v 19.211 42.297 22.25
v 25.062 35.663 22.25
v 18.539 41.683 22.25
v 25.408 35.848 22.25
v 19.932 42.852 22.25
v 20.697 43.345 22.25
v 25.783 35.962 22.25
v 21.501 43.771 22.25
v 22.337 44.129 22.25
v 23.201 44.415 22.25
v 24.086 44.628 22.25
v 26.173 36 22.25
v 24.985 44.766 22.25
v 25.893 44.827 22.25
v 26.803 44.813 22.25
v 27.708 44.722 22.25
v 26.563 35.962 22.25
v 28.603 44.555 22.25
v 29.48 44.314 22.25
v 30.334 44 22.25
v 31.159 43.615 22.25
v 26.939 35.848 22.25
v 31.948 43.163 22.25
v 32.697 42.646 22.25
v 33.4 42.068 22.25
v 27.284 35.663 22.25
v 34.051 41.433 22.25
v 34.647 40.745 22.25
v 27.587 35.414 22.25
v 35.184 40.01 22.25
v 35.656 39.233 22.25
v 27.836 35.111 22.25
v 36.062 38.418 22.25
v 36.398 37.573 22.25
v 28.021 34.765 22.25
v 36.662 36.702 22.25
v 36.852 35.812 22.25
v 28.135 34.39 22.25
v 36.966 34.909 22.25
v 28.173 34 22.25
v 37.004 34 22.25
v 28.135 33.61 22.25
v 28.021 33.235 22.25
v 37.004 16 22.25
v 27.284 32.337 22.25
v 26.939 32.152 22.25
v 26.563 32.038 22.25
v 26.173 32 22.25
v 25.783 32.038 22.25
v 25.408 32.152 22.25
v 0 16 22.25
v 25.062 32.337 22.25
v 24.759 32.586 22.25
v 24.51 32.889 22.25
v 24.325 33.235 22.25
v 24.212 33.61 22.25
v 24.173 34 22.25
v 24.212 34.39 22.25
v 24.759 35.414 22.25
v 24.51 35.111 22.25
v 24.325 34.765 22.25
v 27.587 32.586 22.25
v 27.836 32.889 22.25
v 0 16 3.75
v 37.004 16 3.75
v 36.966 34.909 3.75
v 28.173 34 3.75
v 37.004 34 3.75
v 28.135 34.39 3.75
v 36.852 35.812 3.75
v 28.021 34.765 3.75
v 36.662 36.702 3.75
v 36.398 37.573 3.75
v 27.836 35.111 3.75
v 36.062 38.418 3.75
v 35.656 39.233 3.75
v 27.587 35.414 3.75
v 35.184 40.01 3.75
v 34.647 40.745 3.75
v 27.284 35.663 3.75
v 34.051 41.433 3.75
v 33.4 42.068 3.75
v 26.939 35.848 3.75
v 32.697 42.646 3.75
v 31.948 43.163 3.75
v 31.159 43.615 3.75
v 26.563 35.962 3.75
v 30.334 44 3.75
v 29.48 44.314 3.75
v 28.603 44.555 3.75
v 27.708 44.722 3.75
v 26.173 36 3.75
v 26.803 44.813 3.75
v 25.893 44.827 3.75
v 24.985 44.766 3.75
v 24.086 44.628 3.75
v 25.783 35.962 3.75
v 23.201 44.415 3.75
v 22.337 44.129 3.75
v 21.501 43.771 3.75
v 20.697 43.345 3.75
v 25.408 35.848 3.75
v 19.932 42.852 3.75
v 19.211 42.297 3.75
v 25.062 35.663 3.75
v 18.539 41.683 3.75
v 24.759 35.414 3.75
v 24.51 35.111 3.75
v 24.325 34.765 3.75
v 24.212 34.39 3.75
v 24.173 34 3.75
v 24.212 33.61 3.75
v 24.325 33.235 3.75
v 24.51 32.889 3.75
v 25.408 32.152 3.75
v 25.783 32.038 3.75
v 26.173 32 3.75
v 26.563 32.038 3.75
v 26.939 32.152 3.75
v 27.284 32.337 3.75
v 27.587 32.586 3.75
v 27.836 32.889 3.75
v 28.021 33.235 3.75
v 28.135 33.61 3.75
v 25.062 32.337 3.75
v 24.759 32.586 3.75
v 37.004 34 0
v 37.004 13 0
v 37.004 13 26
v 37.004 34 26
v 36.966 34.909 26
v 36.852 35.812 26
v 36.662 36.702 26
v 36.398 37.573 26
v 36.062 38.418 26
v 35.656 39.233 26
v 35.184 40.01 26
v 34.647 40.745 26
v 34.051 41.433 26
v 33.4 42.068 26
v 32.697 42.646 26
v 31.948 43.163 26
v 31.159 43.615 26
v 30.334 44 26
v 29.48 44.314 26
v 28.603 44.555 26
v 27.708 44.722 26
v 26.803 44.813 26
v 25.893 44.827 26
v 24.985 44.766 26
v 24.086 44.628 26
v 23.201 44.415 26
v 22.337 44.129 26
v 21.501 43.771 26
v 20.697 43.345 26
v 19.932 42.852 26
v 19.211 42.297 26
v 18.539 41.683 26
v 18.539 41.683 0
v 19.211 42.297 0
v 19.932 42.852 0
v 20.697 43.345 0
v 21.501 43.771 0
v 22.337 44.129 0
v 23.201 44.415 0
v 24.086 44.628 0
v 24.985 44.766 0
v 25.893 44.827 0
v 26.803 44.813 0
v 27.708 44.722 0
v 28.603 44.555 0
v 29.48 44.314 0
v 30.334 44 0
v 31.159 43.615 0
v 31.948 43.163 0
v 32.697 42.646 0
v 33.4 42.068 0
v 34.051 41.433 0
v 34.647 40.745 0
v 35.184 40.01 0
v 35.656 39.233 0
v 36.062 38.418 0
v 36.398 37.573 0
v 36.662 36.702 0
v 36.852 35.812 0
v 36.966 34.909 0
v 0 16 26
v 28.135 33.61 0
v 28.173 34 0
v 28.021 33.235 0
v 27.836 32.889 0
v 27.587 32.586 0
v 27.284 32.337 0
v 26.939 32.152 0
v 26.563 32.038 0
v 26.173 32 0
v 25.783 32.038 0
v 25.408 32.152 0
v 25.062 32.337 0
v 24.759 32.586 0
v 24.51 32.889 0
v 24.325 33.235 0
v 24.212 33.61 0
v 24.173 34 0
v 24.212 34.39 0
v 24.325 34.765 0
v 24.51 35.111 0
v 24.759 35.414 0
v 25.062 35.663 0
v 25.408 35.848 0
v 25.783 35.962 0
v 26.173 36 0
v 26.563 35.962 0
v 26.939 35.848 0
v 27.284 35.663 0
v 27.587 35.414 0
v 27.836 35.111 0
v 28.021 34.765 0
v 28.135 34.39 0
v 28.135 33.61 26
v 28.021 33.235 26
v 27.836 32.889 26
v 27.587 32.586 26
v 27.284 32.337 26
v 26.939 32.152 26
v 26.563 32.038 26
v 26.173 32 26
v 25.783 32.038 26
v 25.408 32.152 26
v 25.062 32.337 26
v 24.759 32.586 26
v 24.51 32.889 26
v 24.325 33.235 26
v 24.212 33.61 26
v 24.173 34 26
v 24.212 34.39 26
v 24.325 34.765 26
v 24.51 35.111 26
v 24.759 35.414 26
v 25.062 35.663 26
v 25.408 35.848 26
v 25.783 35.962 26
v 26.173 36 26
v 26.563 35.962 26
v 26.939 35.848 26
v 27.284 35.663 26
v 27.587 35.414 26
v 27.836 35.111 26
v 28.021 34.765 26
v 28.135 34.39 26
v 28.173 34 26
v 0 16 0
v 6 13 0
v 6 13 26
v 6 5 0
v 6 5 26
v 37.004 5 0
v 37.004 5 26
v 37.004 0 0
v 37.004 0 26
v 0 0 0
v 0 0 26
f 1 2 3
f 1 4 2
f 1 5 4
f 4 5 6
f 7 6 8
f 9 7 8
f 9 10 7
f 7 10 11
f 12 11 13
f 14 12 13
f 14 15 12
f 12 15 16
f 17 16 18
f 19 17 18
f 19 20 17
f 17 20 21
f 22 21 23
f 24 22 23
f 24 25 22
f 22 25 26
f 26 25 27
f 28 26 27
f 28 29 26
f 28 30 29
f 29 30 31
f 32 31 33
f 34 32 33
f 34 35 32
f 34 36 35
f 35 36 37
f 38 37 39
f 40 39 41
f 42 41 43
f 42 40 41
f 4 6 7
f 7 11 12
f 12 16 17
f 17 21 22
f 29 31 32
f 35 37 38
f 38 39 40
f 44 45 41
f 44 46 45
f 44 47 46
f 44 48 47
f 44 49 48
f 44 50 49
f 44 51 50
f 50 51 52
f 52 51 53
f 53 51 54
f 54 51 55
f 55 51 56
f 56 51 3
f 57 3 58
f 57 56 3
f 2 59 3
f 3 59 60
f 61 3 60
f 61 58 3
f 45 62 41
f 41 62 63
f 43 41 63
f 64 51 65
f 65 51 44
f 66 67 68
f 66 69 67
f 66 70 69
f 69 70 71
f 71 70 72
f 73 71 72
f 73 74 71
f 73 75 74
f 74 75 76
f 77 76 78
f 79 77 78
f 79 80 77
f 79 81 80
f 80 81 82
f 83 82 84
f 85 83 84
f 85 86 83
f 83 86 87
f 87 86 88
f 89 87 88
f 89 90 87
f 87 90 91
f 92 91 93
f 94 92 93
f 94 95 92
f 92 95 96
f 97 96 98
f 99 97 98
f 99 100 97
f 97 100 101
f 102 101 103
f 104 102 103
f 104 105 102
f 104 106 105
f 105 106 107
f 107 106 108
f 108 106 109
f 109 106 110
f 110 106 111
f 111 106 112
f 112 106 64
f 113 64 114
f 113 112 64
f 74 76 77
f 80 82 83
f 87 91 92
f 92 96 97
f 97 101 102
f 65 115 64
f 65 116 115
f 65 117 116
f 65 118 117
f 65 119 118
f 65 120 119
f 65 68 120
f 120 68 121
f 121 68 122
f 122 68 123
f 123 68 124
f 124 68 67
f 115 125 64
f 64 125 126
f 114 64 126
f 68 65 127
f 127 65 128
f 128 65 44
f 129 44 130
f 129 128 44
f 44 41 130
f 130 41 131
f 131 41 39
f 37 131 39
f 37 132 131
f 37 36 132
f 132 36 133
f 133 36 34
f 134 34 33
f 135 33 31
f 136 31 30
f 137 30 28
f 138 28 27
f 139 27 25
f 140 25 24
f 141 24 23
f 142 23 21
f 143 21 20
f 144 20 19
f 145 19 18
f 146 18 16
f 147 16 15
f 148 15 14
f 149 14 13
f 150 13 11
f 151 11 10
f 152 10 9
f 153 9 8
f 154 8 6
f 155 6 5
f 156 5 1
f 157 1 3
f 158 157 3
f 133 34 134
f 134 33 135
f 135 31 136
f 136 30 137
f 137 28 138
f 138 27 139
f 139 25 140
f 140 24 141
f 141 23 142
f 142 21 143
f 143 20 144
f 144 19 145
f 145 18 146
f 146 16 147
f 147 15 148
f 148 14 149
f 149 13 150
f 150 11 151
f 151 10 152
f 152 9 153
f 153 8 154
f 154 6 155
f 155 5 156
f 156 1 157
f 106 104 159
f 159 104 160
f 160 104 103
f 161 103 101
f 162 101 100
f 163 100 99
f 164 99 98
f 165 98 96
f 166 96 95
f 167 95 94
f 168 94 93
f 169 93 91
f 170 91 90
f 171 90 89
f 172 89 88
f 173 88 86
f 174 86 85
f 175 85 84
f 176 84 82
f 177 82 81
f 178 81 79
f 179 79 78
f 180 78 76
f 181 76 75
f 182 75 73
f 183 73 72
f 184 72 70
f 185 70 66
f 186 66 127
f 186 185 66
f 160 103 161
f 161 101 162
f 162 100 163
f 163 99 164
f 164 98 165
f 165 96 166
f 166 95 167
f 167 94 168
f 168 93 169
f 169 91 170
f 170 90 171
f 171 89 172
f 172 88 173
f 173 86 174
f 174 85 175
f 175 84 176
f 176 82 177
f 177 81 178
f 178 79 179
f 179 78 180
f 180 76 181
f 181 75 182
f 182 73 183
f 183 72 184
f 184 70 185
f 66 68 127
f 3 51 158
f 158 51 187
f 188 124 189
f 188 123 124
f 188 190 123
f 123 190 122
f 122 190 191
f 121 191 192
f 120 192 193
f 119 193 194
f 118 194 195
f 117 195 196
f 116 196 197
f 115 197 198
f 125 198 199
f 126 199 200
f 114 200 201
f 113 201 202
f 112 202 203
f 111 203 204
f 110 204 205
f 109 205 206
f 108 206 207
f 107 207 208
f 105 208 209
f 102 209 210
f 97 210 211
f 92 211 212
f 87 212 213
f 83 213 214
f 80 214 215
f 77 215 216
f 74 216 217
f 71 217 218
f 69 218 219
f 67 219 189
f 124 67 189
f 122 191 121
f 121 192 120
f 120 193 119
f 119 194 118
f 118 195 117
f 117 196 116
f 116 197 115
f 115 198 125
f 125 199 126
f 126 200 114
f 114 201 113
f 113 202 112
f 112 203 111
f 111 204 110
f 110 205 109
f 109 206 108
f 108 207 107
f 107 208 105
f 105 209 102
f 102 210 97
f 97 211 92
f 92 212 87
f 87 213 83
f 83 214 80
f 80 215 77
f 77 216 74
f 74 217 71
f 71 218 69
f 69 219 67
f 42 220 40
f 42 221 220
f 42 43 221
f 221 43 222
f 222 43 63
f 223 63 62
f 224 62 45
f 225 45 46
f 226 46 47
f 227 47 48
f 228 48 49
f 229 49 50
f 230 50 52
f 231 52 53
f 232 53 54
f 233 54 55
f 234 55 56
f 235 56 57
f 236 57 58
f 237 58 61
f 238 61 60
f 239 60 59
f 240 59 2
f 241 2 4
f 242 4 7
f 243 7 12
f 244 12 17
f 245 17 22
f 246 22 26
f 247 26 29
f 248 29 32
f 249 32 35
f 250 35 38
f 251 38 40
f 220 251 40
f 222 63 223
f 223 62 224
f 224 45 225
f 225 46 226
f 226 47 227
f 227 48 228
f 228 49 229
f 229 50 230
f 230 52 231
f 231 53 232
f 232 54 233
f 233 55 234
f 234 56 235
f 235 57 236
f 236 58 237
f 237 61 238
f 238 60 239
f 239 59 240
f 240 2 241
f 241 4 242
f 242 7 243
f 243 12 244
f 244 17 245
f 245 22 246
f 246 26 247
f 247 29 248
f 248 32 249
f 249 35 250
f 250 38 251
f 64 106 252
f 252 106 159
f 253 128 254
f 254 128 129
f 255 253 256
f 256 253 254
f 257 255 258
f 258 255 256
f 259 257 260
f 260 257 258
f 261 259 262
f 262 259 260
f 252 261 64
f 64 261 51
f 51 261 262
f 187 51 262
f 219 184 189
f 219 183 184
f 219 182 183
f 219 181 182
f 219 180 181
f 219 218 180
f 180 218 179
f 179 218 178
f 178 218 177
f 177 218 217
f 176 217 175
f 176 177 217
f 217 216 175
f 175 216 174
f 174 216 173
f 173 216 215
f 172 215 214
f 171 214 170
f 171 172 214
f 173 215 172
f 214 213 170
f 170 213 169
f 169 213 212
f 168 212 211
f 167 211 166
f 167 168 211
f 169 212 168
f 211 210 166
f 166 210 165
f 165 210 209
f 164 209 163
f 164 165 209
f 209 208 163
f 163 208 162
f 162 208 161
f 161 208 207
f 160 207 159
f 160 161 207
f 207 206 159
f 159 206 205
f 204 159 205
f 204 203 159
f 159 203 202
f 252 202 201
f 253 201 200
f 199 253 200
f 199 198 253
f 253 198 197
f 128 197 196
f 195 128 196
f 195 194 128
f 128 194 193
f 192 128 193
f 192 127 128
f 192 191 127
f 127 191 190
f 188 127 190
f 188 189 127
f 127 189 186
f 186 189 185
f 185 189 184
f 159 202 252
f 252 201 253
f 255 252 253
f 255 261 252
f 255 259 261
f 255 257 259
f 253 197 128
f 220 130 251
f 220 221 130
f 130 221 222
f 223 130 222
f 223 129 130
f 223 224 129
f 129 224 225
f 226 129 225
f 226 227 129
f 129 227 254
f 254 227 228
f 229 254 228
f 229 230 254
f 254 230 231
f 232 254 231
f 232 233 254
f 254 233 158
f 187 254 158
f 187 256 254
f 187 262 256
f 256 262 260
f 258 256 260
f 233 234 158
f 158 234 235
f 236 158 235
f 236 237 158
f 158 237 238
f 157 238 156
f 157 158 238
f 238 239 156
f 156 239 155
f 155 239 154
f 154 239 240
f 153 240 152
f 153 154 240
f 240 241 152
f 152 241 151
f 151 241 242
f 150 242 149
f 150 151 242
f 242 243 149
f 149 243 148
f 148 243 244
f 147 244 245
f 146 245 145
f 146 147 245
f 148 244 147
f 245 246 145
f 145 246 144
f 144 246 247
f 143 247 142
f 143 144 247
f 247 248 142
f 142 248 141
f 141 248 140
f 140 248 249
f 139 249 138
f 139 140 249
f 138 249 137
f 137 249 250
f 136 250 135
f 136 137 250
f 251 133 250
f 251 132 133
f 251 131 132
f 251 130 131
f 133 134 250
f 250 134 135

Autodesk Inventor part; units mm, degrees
ref_plane "YZ Plane" through (0, 0, 0) normal (1, 0, 0) x (0, 1, 0)
ref_plane "XZ Plane" through (0, 0, 0) normal (0, 1, 0) x (-1, 0, 0)
ref_plane "XY Plane" through (0, 0, 0) normal (0, 0, 1) x (1, 0, 0)
sketch "Sketch1" plane through (0, 0, 0) normal (0, 0, 1) x (1, 0, 0)
  line L0 (6, 5) -> (6, 13)
  line L1 (0, 16) -> (0, 0)
  arc A0 (37.0043, 34) -> (18.539, 41.6832) centre (26.1732, 34) ccw
  line L2 (18.539, 41.6832) -> (0, 16)
  circle A1 centre (26.1732, 34) radius 2
  line L3 (37.0043, 5) -> (37.0043, 0)
  line L4 (6, 5) -> (37.0043, 5)
  line L5 (0, 0) -> (37.0043, 0)
  line L6 (6, 13) -> (37.0043, 13)
  line L7 (0, 16) -> (37.0043, 16)
  line L8 (37.0043, 34) -> (37.0043, 13)
  dimension "d3" = 8
  dimension "d6" = 18
  dimension "d7" = 20
  dimension "d8" = 4
  dimension "d9" = 3
  dimension "d10" = 5
  dimension "d11" = 16
  dimension "d12" = 37.0043
  dimension "d13" = 31.0043
  dimension "d14" = 26.1732
extrude "Extrusion1" add sketch "Sketch1" along normal blind 26
sketch "Sketch2" plane through (0, 0, 26) normal (0, 0, 1) x (1, 0, 0)
  point P0 (0, 0)
sketch "Sketch3" plane through (37.0043, 13, 0) normal (1, 0, 0) x (0, 0, -1)
  line L0 (0, 0) -> (-26, 0) projected
  line L1 (-13, 38) -> (-3.75, 38)
  line L2 (-3.75, 38) -> (-3.75, 3)
  line L3 (-13, 38) -> (-22.25, 38)
  line L4 (-22.25, 38) -> (-22.25, 3)
  line L5 (-22.25, 3) -> (-3.75, 3)
  line L6 (0, 0) -> (-26, 0) projected
  point P0 (0, -13)
  point P1 (-26, 3)
  dimension "d19" = 9.25
  dimension "d20" = 9.25
extrude "Extrusion2" cut sketch "Sketch3" against normal through all
properties part number "Maintients poullies V2 alpha"
